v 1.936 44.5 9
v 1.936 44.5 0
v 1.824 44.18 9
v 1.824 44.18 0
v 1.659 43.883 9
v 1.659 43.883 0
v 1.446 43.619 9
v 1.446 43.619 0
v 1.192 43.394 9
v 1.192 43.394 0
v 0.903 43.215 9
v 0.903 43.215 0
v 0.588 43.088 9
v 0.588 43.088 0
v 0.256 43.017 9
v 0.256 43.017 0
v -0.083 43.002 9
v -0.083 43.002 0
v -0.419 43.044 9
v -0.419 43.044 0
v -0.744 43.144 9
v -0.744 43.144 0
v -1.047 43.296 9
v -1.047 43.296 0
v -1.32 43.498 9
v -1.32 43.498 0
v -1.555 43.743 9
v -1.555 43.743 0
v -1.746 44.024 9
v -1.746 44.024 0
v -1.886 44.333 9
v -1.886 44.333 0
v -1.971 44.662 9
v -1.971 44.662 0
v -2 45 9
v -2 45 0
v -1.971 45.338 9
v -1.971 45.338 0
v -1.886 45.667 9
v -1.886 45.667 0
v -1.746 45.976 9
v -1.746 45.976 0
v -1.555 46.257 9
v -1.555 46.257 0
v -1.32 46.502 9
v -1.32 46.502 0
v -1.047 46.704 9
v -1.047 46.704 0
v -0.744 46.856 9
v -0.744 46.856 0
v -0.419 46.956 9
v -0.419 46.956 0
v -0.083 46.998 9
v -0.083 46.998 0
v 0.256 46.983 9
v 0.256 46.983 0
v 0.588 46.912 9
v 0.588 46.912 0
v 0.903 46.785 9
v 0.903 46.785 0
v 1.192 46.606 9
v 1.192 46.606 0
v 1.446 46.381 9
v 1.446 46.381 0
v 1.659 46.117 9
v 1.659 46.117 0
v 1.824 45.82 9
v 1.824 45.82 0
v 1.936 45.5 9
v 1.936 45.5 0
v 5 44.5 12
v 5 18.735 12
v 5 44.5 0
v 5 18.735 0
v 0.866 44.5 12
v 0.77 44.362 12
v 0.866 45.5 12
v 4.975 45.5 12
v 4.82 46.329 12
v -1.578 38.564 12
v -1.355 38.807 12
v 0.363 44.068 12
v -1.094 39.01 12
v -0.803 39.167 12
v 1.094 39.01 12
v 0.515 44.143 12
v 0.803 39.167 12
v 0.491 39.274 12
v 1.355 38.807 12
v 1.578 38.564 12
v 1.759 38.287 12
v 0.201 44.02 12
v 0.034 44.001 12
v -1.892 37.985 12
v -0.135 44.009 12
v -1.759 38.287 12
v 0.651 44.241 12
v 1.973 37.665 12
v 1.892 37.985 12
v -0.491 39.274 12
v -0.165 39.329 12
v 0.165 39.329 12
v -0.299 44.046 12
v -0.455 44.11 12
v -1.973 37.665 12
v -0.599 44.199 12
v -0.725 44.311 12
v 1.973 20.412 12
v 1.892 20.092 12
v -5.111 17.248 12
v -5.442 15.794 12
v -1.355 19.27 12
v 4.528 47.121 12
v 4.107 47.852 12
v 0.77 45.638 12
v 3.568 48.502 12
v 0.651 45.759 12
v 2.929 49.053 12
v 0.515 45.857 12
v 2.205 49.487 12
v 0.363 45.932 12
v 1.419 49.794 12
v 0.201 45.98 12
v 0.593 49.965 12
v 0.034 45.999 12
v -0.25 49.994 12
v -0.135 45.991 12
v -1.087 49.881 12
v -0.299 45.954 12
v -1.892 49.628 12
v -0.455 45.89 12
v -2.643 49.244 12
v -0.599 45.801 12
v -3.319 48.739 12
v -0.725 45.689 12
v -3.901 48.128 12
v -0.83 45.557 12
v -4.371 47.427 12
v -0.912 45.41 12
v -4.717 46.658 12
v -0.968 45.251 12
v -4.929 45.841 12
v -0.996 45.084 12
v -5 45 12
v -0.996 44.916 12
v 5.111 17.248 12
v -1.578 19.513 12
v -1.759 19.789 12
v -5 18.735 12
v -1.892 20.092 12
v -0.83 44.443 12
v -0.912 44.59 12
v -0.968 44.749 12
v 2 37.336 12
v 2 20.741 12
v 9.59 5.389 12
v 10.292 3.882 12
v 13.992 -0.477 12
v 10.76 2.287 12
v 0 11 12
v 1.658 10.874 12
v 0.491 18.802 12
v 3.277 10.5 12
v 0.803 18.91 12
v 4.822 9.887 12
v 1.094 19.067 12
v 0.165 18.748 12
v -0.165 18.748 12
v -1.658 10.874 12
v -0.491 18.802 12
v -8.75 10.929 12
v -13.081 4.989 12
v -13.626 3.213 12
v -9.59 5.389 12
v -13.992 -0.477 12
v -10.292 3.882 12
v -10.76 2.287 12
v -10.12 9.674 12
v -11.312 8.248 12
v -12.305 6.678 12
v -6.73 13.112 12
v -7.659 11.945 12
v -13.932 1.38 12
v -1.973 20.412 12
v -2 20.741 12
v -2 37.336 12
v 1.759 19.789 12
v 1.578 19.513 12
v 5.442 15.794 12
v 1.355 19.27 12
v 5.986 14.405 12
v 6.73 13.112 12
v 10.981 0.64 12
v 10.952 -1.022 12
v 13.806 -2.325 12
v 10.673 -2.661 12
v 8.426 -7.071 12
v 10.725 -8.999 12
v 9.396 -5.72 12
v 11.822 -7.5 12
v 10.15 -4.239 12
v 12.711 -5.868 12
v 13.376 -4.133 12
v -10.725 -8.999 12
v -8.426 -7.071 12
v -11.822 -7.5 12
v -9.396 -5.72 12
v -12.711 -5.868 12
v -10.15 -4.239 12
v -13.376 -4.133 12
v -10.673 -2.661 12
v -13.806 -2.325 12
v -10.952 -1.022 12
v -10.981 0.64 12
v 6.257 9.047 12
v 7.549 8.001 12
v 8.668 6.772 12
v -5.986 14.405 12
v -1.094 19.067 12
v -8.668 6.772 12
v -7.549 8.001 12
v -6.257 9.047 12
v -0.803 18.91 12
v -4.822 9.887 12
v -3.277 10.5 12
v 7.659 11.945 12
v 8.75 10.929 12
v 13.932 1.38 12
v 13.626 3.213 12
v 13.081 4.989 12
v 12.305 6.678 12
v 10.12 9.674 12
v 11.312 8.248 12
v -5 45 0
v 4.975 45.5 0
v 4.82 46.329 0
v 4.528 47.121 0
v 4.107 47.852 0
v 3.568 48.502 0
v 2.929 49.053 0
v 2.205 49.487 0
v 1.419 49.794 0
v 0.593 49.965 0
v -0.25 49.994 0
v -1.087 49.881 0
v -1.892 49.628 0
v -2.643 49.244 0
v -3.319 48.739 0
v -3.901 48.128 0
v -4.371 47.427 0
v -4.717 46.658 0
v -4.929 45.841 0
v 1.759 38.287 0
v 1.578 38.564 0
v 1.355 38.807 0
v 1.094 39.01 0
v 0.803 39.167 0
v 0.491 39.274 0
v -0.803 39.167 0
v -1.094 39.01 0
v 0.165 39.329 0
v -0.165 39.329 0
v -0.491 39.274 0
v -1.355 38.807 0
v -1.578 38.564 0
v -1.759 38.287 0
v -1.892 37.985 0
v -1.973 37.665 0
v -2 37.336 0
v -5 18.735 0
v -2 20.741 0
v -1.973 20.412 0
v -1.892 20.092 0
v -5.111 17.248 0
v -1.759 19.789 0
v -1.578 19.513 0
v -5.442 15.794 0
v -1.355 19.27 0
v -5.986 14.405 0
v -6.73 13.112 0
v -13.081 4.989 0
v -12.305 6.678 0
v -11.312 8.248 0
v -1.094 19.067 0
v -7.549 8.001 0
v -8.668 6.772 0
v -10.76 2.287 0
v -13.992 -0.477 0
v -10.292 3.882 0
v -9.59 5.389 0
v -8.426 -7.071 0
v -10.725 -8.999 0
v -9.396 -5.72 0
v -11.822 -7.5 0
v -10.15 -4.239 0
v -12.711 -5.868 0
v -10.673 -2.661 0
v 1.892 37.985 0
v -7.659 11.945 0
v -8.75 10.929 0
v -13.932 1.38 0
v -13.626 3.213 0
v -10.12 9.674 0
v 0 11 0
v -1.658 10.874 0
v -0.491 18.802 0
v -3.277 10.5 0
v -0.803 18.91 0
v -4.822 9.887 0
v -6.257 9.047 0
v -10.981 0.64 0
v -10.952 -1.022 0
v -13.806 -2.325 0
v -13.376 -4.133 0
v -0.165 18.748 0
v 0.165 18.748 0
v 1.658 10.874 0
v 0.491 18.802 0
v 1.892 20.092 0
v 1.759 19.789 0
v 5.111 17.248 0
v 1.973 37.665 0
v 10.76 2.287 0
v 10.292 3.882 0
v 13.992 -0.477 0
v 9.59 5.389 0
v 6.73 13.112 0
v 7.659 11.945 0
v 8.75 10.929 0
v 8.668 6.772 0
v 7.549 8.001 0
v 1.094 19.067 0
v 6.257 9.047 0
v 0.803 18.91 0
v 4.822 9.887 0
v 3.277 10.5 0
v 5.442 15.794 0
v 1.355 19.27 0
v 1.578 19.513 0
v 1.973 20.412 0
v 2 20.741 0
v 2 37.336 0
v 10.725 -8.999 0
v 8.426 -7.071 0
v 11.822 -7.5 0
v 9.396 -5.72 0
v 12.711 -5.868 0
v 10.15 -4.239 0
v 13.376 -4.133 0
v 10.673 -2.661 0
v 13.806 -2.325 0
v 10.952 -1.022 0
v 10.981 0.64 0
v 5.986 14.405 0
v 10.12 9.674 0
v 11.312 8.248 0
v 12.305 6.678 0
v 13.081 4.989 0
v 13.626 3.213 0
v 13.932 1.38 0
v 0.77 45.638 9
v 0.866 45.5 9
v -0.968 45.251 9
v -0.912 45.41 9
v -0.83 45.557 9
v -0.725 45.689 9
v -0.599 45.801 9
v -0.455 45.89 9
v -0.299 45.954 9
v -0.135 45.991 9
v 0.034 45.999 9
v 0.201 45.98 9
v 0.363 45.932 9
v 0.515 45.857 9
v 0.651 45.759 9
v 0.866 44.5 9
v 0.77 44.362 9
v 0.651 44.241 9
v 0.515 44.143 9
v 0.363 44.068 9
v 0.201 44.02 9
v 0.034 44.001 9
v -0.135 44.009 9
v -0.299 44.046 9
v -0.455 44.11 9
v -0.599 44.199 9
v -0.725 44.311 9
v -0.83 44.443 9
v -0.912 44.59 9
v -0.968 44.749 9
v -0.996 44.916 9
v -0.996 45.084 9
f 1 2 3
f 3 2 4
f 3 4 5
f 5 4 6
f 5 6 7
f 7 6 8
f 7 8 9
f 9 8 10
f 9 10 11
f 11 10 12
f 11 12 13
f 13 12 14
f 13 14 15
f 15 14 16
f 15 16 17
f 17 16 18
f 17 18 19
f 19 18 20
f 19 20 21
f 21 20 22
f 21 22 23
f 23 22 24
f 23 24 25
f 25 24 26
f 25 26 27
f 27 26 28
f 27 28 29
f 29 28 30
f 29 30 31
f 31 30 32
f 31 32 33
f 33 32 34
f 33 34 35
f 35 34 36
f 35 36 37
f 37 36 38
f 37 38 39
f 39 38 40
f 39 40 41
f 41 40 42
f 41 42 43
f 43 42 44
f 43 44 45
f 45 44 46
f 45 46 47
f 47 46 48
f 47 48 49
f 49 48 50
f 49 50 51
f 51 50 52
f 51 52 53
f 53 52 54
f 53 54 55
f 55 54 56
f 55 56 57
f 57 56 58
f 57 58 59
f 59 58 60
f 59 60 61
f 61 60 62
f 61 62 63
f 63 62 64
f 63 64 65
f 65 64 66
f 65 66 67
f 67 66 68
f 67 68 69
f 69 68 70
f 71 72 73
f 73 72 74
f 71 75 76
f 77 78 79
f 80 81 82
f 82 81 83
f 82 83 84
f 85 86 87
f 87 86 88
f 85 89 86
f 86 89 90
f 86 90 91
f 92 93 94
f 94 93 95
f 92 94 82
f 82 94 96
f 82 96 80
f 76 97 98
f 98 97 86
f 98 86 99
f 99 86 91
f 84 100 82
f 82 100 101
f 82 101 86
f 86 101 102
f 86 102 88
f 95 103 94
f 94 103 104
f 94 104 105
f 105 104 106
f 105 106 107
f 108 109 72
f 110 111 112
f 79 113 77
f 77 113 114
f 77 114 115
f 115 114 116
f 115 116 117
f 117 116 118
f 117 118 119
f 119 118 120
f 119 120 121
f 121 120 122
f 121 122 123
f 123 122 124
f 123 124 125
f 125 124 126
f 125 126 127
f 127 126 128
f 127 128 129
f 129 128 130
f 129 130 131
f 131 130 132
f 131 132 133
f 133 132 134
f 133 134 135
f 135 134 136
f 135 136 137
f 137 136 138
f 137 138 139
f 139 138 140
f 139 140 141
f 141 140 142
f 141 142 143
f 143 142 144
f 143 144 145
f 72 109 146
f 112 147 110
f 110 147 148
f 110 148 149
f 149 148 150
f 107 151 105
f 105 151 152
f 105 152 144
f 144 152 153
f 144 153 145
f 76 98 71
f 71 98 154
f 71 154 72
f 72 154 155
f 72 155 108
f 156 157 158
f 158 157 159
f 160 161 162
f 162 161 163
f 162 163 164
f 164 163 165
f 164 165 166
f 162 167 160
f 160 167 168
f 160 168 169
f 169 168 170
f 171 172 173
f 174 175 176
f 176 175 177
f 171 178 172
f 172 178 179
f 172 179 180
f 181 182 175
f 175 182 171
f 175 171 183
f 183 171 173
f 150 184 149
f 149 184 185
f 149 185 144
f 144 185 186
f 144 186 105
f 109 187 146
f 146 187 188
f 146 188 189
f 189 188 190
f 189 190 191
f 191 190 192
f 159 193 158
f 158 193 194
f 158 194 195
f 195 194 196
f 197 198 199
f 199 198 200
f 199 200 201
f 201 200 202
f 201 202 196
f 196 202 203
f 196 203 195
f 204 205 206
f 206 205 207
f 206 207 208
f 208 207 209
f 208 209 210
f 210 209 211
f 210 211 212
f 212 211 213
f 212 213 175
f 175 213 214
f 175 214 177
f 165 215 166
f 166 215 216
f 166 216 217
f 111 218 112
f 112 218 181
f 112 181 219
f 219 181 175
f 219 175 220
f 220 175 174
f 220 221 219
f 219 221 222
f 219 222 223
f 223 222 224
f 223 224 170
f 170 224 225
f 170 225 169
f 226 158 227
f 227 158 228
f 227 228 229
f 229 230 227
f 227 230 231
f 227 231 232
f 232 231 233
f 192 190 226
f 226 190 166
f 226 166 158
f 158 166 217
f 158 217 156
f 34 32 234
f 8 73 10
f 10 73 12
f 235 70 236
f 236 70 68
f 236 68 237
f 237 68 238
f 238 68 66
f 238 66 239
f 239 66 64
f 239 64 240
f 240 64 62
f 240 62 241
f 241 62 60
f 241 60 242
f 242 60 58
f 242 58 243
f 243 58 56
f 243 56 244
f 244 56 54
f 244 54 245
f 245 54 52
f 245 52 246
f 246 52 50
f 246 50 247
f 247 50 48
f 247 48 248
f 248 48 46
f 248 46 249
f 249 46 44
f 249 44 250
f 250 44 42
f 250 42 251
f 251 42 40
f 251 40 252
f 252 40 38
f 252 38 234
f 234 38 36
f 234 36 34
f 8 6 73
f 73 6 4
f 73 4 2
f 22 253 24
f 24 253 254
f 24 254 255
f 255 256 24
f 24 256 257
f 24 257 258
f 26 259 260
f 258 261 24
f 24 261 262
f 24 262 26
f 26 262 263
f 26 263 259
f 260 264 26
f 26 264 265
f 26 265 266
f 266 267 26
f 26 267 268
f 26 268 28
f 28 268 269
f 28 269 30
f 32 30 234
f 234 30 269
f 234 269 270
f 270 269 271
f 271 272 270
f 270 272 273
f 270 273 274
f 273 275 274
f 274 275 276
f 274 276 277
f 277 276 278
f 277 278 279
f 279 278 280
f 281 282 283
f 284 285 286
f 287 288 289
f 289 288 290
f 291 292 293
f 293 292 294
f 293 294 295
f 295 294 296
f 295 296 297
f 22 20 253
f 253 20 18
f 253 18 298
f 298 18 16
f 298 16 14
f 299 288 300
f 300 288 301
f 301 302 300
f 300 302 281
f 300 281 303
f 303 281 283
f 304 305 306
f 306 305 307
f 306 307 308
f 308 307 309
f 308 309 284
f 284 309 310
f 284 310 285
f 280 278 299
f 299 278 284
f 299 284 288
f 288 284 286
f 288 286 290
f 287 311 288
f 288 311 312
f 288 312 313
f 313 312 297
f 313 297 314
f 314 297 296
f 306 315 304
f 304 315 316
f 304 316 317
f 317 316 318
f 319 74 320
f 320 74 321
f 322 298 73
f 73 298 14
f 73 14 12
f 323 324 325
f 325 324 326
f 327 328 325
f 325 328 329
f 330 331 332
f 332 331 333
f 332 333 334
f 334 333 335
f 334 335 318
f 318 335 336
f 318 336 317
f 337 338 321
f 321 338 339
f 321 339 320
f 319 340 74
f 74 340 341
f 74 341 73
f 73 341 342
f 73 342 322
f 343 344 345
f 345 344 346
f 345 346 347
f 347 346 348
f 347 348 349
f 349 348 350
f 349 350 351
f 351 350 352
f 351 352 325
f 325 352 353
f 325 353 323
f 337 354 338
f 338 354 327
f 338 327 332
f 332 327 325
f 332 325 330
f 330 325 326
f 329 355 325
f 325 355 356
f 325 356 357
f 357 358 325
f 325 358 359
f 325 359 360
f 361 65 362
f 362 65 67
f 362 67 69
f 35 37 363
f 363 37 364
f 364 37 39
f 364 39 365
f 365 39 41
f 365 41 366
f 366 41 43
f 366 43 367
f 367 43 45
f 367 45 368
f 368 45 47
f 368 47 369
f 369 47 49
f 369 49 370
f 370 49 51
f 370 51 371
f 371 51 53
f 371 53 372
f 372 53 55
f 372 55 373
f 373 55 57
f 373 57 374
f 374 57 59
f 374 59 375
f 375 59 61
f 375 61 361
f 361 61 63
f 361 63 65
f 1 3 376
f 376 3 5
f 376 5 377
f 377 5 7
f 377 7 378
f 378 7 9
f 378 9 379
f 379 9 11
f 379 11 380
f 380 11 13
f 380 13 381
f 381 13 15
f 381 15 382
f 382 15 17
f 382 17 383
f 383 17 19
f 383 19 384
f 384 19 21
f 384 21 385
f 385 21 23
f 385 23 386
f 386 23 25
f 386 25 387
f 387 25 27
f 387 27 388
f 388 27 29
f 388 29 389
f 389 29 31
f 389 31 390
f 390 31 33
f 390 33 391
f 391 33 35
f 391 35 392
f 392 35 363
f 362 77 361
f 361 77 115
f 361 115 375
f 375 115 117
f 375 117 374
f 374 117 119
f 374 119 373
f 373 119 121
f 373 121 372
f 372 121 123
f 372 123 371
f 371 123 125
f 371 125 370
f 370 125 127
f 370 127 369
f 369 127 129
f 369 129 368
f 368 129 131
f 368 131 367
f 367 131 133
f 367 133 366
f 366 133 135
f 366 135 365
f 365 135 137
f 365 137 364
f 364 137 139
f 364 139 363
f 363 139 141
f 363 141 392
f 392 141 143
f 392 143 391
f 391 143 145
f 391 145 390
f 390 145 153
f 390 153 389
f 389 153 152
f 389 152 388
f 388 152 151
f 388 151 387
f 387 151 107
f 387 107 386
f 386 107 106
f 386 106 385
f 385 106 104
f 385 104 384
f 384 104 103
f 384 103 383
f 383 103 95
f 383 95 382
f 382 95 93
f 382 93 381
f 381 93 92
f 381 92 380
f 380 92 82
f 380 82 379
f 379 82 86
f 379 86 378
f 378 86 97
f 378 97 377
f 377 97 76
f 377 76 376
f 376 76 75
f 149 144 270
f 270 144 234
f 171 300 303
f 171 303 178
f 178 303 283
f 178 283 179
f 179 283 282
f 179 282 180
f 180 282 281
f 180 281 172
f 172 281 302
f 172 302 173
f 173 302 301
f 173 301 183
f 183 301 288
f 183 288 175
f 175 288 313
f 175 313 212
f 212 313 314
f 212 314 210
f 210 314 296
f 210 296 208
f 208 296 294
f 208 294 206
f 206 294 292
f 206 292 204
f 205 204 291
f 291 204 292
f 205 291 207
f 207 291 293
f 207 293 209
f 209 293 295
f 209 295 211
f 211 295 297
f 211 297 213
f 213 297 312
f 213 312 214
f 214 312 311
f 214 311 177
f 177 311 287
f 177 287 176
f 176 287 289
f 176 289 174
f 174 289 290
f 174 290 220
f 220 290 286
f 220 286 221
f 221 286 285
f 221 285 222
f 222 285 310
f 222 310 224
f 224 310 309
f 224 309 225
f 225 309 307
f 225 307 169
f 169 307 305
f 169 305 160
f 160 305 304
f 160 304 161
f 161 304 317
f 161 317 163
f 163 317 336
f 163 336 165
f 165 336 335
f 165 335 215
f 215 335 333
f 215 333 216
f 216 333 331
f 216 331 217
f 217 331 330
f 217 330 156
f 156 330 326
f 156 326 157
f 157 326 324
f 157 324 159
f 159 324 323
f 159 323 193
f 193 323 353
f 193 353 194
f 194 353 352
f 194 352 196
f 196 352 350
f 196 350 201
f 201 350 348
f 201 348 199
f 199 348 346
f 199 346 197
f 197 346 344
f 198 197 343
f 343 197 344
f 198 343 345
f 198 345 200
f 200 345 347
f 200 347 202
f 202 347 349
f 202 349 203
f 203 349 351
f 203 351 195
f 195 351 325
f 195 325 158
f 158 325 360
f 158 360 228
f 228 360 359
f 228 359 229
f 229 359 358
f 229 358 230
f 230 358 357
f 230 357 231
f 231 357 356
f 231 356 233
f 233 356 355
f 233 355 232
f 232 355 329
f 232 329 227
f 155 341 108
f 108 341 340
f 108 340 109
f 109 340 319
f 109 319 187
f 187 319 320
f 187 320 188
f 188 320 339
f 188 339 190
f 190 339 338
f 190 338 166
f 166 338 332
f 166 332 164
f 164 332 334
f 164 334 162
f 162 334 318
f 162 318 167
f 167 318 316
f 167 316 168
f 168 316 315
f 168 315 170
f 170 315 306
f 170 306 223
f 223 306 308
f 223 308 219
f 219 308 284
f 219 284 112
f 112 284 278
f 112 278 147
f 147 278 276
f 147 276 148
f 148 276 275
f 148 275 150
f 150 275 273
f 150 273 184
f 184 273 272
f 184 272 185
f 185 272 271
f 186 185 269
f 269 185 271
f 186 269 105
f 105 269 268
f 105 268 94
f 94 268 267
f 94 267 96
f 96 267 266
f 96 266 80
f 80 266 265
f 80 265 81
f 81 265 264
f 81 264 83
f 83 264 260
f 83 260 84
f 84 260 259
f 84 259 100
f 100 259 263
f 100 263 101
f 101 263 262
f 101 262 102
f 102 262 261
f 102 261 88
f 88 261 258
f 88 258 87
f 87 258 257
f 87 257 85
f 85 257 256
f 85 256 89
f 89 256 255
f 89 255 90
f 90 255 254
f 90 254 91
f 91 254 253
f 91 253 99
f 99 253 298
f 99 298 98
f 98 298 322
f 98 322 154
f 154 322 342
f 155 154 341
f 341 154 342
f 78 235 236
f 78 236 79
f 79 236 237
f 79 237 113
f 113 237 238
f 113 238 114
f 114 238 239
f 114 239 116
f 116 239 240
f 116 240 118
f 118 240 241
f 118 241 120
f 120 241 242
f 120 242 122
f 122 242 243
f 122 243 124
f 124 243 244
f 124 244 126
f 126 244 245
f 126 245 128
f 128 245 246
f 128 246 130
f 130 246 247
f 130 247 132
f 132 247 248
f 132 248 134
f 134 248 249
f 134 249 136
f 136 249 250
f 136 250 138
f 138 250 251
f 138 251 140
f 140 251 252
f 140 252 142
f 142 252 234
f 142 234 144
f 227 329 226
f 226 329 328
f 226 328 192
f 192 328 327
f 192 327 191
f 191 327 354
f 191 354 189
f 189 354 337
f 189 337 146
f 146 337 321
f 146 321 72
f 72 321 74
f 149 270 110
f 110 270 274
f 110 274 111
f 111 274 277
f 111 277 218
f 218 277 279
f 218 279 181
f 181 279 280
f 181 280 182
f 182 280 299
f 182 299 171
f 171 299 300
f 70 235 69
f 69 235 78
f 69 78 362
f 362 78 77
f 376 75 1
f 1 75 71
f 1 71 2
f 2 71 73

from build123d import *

# Parameters (mm, degrees)
SKETCH1_R                    = 2
BOSS_EXTRUDE1_DEPTH          = 12
SKETCH2_R                    = 2
SKETCH2_R_2                  = 1
BOSS_EXTRUDE2_DEPTH          = 3
FILLET1_R                    = 10
SKETCH3_W                    = 12
SKETCH3_H                    = 1
CUT_EXTRUDE_THIN2_DEPTH      = 10
CUT_EXTRUDE_THIN2_DEPTH_BACK = 5


with BuildPart() as part:
    # Sketch1 → Boss-Extrude1 (new body)
    with BuildSketch(Plane.XY):
        with BuildLine():
            Line((5, 13.076696831), (5, 45))
            ThreePointArc((5, 45), (0, 50), (-5, 45))
            Line((-5, 45), (-5, 13.076696831))
            ThreePointArc((-5, 13.076696831), (-13.551764697, 3.514210239), (-10.724622204, -8.999026536))
            Line((-10.724622204, -8.999026536), (-8.426488874, -7.070663707))
            ThreePointArc((-8.426488874, -7.070663707), (-3.762221577, 10.336618829), (11, 0))
            ThreePointArc((11, 0), (10.336618829, -3.762221577), (8.426488874, -7.070663707))
            Line((8.426488874, -7.070663707), (10.724622204, -8.999026536))
            ThreePointArc((10.724622204, -8.999026536), (13.551764697, 3.514210239), (5, 13.076696831))
        make_face()
        with BuildLine():
            ThreePointArc((-2, 37.335582027), (0, 39.335582027), (2, 37.335582027))
            Line((2, 37.335582027), (2, 20.741114804))
            ThreePointArc((2, 20.741114804), (0, 18.741114804), (-2, 20.741114804))
            Line((-2, 20.741114804), (-2, 37.335582027))
        make_face(mode=Mode.SUBTRACT)
        with Locations((0, 45)):
            Circle(SKETCH1_R, mode=Mode.SUBTRACT)
    extrude(amount=BOSS_EXTRUDE1_DEPTH)

    # Sketch2 → Boss-Extrude2 (add)
    with BuildSketch(Plane.XY.offset(12)):
        with Locations((0, 45)):
            Circle(SKETCH2_R)
        with Locations((0, 45)):
            Circle(SKETCH2_R_2, mode=Mode.SUBTRACT)
    extrude(amount=-BOSS_EXTRUDE2_DEPTH)

    # Fillet1
    fillet1_edges = [part.edges().sort_by_distance(p)[0] for p in [
        (5, 13.076696831, 6),
        (-5, 13.076696831, 6),
    ]]
    fillet(fillet1_edges, radius=FILLET1_R)

    # Sketch3 → Cut-Extrude-Thin2 (cut, two sides)
    with BuildSketch(Plane(origin=(5, 0, 0), x_dir=(0, 0, -1), z_dir=(1, 0, 0))) as cut_extrude_thin2_sk:
        with Locations((-6, 45)):
            Rectangle(SKETCH3_W, SKETCH3_H)
    extrude(amount=CUT_EXTRUDE_THIN2_DEPTH, mode=Mode.SUBTRACT)
    extrude(cut_extrude_thin2_sk.sketch, amount=-CUT_EXTRUDE_THIN2_DEPTH_BACK, mode=Mode.SUBTRACT)


solid = part.part
